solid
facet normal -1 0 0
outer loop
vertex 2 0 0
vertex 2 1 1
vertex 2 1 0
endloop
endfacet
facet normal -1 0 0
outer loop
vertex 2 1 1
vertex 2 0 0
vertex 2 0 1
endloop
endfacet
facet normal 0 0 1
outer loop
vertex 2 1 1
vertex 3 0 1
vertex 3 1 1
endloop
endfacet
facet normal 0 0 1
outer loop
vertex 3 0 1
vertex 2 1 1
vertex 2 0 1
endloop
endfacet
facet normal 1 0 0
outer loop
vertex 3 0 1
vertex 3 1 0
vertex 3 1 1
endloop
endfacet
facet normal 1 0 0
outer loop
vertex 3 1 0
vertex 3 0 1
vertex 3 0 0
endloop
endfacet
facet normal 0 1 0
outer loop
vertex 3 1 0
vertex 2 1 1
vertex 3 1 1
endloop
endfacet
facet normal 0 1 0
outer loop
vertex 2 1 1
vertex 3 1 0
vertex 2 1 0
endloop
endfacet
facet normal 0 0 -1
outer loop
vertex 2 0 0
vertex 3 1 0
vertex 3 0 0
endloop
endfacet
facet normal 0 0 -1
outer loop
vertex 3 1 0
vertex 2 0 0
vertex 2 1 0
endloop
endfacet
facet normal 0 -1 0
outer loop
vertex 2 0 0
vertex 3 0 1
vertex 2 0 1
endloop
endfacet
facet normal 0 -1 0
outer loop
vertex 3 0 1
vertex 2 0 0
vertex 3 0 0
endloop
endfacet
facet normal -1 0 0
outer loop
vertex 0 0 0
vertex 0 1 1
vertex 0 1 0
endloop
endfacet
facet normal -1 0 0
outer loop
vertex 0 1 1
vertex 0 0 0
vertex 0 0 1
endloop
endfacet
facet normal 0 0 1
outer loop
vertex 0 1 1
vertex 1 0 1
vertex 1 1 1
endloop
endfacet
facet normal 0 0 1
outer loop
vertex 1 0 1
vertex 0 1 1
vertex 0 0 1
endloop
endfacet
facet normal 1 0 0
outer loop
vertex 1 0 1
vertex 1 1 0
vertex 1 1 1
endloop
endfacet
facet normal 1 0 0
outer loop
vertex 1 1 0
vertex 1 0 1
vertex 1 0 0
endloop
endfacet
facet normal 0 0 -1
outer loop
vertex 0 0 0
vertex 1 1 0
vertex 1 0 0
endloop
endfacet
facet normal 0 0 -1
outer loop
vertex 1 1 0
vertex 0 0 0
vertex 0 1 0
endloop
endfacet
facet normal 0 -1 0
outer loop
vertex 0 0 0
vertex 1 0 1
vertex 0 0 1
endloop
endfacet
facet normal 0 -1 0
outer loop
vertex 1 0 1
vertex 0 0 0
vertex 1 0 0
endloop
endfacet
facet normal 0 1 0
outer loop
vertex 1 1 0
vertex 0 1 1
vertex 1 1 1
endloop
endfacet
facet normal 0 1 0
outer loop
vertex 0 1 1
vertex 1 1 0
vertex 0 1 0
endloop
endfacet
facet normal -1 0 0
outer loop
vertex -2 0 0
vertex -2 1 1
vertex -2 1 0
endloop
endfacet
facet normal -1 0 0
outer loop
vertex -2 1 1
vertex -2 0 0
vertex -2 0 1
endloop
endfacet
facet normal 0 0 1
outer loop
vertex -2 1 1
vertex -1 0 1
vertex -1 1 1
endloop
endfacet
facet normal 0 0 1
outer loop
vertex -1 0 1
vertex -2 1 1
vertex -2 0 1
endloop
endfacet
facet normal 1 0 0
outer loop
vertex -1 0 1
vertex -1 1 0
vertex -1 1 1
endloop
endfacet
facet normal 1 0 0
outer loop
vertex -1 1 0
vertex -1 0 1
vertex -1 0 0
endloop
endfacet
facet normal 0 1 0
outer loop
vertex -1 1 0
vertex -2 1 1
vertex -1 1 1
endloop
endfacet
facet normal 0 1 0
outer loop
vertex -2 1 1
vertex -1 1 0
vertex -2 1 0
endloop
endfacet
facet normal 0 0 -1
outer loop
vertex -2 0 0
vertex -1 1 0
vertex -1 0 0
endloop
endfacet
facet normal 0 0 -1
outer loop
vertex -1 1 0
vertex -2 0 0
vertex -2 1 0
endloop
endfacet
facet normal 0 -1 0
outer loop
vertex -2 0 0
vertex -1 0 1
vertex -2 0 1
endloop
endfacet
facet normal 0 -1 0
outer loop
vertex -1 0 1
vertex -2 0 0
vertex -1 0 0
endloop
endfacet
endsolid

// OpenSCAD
color([255,0,0])
	translate([2,0,0])
		cube(1);	
color([0,255,0])
	translate([0,0,0])
		cube(1);	
color([0,0,255])
	translate([-2,0,0])
		cube(1);	
